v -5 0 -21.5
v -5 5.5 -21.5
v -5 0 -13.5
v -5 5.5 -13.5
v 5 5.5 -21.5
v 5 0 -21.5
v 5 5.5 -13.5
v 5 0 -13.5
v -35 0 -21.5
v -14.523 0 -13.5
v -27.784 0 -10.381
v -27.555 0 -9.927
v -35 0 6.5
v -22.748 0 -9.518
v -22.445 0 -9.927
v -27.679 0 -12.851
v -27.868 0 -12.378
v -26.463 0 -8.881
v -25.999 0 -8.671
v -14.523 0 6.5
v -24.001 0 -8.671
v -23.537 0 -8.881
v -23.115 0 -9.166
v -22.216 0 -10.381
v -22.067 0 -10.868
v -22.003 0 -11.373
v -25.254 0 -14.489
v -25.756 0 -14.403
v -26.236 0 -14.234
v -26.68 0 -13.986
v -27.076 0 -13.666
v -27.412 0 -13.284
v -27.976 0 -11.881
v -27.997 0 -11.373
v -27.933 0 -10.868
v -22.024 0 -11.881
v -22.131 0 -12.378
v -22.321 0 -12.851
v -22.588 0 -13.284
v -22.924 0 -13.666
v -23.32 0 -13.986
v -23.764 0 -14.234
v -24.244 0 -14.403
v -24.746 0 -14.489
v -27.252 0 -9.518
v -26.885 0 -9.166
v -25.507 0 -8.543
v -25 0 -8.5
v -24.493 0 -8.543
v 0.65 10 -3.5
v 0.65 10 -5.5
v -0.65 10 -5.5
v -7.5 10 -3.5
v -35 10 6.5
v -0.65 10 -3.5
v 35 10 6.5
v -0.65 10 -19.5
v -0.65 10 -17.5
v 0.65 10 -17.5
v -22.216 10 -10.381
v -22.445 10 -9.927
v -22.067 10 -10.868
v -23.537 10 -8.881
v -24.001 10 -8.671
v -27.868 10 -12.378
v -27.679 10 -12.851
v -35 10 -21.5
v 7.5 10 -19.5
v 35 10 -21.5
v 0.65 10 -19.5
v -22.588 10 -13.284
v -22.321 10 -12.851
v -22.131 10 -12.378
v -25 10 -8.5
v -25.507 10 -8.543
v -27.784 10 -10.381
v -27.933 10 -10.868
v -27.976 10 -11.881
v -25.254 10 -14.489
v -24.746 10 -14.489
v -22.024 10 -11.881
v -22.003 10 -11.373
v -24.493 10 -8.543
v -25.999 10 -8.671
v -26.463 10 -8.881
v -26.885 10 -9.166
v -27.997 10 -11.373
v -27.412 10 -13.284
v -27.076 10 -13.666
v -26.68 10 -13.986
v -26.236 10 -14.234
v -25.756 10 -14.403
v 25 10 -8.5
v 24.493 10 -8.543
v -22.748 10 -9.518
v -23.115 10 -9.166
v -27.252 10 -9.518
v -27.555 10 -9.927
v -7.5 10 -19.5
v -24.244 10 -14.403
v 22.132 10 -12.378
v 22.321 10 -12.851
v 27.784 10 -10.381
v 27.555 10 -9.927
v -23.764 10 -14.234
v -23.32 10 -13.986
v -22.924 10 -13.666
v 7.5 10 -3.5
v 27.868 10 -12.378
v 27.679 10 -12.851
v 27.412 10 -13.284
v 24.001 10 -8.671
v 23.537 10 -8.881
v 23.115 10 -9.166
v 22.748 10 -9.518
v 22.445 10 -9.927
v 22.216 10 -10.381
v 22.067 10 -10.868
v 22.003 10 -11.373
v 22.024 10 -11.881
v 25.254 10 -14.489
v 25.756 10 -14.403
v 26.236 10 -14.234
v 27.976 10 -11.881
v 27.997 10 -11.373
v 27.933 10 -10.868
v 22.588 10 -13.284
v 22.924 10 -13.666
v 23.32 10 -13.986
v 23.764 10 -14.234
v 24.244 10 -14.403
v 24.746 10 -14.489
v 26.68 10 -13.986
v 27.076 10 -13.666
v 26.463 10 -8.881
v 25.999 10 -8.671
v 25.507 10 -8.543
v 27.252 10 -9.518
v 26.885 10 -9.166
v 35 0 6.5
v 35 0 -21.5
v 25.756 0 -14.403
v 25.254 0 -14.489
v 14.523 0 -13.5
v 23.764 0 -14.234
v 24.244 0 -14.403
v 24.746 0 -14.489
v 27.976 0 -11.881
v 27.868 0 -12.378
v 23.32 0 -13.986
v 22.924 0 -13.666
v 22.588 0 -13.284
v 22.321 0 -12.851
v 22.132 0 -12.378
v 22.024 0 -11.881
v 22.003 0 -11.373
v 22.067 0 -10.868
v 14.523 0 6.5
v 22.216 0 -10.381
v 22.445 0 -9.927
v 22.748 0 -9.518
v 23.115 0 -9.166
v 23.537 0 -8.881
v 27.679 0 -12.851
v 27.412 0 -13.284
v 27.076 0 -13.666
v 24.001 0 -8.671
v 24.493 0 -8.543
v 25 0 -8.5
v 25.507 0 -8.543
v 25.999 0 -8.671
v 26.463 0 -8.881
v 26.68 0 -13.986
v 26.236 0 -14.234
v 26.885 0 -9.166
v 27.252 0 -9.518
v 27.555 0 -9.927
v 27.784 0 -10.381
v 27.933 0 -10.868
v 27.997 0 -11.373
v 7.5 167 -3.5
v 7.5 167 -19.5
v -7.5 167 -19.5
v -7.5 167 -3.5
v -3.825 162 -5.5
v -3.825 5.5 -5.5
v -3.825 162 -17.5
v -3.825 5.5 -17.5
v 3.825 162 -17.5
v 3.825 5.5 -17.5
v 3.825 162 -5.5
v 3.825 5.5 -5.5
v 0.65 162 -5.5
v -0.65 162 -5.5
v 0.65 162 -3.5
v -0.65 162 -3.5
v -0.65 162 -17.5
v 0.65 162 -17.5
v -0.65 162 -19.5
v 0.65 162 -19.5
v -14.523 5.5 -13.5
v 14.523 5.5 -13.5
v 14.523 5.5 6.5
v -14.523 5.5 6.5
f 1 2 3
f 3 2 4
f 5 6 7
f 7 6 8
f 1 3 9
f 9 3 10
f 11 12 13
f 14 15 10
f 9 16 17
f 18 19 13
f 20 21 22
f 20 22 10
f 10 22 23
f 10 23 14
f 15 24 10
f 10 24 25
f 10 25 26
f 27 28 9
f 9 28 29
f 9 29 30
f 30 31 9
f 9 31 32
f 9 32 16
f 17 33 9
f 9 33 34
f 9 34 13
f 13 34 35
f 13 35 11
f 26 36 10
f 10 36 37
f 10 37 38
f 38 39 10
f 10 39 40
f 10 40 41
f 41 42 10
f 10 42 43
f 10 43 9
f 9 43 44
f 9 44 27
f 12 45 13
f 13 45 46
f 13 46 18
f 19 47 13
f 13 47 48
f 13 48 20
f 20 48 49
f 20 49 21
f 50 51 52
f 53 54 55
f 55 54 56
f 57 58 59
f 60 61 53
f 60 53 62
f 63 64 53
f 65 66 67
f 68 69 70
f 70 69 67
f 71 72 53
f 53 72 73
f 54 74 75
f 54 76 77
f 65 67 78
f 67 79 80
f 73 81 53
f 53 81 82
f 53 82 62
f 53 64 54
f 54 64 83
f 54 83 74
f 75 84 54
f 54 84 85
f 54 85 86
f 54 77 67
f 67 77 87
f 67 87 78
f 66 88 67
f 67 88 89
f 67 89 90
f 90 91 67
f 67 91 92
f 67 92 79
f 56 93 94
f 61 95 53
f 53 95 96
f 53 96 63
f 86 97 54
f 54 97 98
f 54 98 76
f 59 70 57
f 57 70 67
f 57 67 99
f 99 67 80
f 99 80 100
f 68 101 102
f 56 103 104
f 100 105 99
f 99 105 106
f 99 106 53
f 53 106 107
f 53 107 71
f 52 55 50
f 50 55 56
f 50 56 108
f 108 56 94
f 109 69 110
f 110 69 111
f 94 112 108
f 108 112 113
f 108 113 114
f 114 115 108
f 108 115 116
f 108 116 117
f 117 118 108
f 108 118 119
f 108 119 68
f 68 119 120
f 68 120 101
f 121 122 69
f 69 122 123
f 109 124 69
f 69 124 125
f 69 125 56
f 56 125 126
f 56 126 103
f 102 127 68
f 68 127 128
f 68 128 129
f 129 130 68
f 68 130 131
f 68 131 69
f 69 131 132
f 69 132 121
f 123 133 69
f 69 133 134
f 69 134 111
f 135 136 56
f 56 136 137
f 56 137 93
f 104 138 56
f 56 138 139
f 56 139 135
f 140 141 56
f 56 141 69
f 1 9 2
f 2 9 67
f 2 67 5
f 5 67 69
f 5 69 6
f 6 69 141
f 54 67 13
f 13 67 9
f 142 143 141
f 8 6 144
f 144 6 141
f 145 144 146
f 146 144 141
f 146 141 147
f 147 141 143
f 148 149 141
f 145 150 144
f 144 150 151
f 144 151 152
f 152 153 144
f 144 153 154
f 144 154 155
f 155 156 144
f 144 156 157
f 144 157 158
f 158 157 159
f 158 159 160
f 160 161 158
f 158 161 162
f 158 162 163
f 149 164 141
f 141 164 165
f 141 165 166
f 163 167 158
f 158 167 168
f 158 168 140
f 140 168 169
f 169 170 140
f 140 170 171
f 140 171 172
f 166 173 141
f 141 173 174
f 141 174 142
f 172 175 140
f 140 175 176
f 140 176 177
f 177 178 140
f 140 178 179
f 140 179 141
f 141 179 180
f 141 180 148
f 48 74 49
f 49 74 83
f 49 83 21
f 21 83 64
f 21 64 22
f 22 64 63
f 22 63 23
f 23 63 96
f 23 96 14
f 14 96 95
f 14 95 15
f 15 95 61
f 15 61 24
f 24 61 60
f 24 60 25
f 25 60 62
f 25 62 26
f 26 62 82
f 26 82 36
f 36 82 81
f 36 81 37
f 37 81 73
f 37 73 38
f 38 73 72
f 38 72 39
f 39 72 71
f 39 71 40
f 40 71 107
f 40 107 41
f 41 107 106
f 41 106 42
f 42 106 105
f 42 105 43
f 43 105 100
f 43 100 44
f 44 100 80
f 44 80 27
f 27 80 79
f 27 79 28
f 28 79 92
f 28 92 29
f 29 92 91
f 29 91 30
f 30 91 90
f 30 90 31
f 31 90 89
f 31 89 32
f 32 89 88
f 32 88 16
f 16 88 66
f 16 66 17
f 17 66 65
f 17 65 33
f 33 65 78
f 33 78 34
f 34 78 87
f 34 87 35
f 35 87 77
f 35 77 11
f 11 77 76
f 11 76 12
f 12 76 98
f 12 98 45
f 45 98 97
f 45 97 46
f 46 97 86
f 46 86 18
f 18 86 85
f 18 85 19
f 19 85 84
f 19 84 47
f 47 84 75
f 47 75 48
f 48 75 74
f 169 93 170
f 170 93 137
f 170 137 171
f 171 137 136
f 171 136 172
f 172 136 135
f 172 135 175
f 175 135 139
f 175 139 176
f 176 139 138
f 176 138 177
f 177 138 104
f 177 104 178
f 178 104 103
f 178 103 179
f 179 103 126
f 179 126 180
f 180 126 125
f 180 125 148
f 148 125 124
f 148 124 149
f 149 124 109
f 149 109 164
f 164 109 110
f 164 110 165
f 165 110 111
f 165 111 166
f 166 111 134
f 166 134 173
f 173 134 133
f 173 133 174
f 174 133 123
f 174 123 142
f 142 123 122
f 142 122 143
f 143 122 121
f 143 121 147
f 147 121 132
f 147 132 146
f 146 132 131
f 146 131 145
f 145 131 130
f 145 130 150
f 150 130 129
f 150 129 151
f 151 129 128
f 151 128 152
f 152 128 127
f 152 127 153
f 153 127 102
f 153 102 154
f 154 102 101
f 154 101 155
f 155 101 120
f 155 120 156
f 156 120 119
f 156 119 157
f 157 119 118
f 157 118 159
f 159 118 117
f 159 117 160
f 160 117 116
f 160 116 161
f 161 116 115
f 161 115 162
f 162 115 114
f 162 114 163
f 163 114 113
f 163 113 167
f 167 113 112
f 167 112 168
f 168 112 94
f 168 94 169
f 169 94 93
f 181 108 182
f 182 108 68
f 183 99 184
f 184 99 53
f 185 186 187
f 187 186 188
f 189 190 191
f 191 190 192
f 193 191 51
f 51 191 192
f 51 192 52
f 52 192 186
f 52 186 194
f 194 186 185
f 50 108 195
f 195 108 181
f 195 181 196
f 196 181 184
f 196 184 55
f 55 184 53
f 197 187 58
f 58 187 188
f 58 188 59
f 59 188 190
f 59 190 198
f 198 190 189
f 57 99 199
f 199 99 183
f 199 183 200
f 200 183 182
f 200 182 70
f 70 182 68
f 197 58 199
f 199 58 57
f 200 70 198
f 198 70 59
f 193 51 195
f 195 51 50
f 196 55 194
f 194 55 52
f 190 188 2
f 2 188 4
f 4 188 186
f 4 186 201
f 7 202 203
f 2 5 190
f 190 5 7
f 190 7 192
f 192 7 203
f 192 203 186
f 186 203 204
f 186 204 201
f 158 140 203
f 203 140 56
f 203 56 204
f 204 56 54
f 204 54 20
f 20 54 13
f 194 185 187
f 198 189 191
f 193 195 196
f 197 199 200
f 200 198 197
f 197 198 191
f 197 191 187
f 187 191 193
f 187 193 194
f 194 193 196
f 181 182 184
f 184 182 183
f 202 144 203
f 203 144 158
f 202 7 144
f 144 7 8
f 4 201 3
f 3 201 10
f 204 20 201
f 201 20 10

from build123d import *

# Parameters (mm, degrees)
SKETCH_1_W           = 70
SKETCH_1_H           = 43
EXTRUDE_1_DEPTH      = 10
SKETCH_21_R          = 3
CUT_EXTRUDE_12_DEPTH = 43.275879648
SKETCH_22_R          = 3
CUT_EXTRUDE_13_DEPTH = 43.275879648
SKETCH_46_W          = 15
SKETCH_46_H          = 12
EXTRUDE_4_DEPTH      = 200
SKETCH_76_W          = 7.65
SKETCH_76_H          = 200
CUT_EXTRUDE_37_DEPTH = 217.439367953
SKETCH_78_W          = 15
SKETCH_78_H          = 2
EXTRUDE_16_DEPTH     = 200
SKETCH_79_W          = 15
SKETCH_79_H          = 2
EXTRUDE_17_DEPTH     = 200
SKETCH_80_W          = 1.3
SKETCH_80_H          = 200
CUT_EXTRUDE_38_DEPTH = 215.359511102
SKETCH_83_W          = 7.65
SKETCH_83_H          = 12
CUT_EXTRUDE_39_DEPTH = 205.174557671
SKETCH_84_W          = 10
SKETCH_84_H          = 11
CUT_EXTRUDE_40_DEPTH = 218.195764231
SKETCH_82_W          = 15
SKETCH_82_H          = 16
EXTRUDE_19_DEPTH     = 10
SKETCH_85_W          = 70
SKETCH_85_H          = 15
CUT_EXTRUDE_41_DEPTH = 10
SKETCH_86_W          = 15
SKETCH_86_H          = 35
CUT_EXTRUDE_42_DEPTH = 25
SKETCH_87_W          = 15
SKETCH_87_H          = 16
EXTRUDE_20_DEPTH     = 5
SKETCH_88_W          = 15
SKETCH_88_H          = 28
CUT_EXTRUDE_43_DEPTH = 35
SKETCH_89_W          = 15
SKETCH_89_H          = 16
EXTRUDE_21_DEPTH     = 5
SKETCH_90_W          = 29.045295042
SKETCH_90_H          = 11
CUT_EXTRUDE_44_DEPTH = 20


with BuildPart() as part:
    # 草圖1 → 填料-伸長1 (new body)
    with BuildSketch(Plane(origin=(0, 0, 0), x_dir=(1, 0, 0), z_dir=(0, 1, 0))):
        Rectangle(SKETCH_1_W, SKETCH_1_H)
    extrude(amount=EXTRUDE_1_DEPTH)

    # 草圖21 → 除料-伸長12 (cut, through all)
    with BuildSketch(Plane(origin=(0, 10, 0), x_dir=(1, 0, 0), z_dir=(0, 1, 0))):
        with Locations(Location((-25, 11.5, 0), (0, 0, 270))):
            Circle(SKETCH_21_R)
    extrude(amount=-CUT_EXTRUDE_12_DEPTH, mode=Mode.SUBTRACT)

    # 草圖22 → 除料-伸長13 (cut, through all)
    with BuildSketch(Plane(origin=(0, 10, 0), x_dir=(1, 0, 0), z_dir=(0, 1, 0))):
        with Locations(Location((25, 11.5, 0), (0, 0, 270))):
            Circle(SKETCH_22_R)
    extrude(amount=-CUT_EXTRUDE_13_DEPTH, mode=Mode.SUBTRACT)

    # 草圖46 → 填料-伸長4 (add)
    with BuildSketch(Plane(origin=(0, 10, 0), x_dir=(1, 0, 0), z_dir=(0, 1, 0))):
        with Locations((0, 11.5)):
            Rectangle(SKETCH_46_W, SKETCH_46_H)
    extrude(amount=EXTRUDE_4_DEPTH)

    # 草圖76 → 除料-伸長37 (cut, through all)
    with BuildSketch(Plane(origin=(0, 0, -17.5), x_dir=(-1, 0, 0), z_dir=(0, 0, -1))):
        with Locations((0, 110)):
            Rectangle(SKETCH_76_W, SKETCH_76_H)
    extrude(amount=-CUT_EXTRUDE_37_DEPTH, mode=Mode.SUBTRACT)

    # 草圖78 → 填料-伸長16 (add)
    with BuildSketch(Plane(origin=(0, 10, 0), x_dir=(1, 0, 0), z_dir=(0, 1, 0))):
        with Locations((0, 4.5)):
            Rectangle(SKETCH_78_W, SKETCH_78_H)
    extrude(amount=EXTRUDE_16_DEPTH)

    # 草圖79 → 填料-伸長17 (add)
    with BuildSketch(Plane(origin=(0, 10, 0), x_dir=(1, 0, 0), z_dir=(0, 1, 0))):
        with Locations((0, 18.5)):
            Rectangle(SKETCH_79_W, SKETCH_79_H)
    extrude(amount=EXTRUDE_17_DEPTH)

    # 草圖80 → 除料-伸長38 (cut, through all)
    with BuildSketch(Plane.XY.offset(-3.5)):
        with Locations((0, 110)):
            Rectangle(SKETCH_80_W, SKETCH_80_H)
    extrude(amount=-CUT_EXTRUDE_38_DEPTH, mode=Mode.SUBTRACT)

    # 草圖83 → 除料-伸長39 (cut, through all)
    with BuildSketch(Plane(origin=(0, 10, 0), x_dir=(1, 0, 0), z_dir=(0, 1, 0))):
        with Locations((0, 11.5)):
            Rectangle(SKETCH_83_W, SKETCH_83_H)
    extrude(amount=-CUT_EXTRUDE_39_DEPTH, mode=Mode.SUBTRACT)

    # 草圖84 → 除料-伸長40 (cut, through all)
    with BuildSketch(Plane(origin=(0, 0, -21.5), x_dir=(-1, 0, 0), z_dir=(0, 0, -1))):
        Rectangle(SKETCH_84_W, SKETCH_84_H)
    extrude(amount=-CUT_EXTRUDE_40_DEPTH, mode=Mode.SUBTRACT)

    # 草圖82 → 填料-伸長19 (add)
    with BuildSketch(Plane(origin=(0, 210, 0), x_dir=(1, 0, 0), z_dir=(0, 1, 0))):
        with Locations((0, 11.5)):
            Rectangle(SKETCH_82_W, SKETCH_82_H)
    extrude(amount=EXTRUDE_19_DEPTH)

    # 草圖85 → 除料-伸長41 (cut)
    with BuildSketch(Plane(origin=(0, 10, 0), x_dir=(1, 0, 0), z_dir=(0, 1, 0))):
        with Locations((0, -14)):
            Rectangle(SKETCH_85_W, SKETCH_85_H)
    extrude(amount=-CUT_EXTRUDE_41_DEPTH, mode=Mode.SUBTRACT)

    # 草圖86 → 除料-伸長42 (cut)
    with BuildSketch(Plane.XY.offset(-3.5)):
        with Locations((0, 202.5)):
            Rectangle(SKETCH_86_W, SKETCH_86_H)
    extrude(amount=-CUT_EXTRUDE_42_DEPTH, mode=Mode.SUBTRACT)

    # 草圖87 → 填料-伸長20 (add)
    with BuildSketch(Plane(origin=(0, 185, 0), x_dir=(1, 0, 0), z_dir=(0, 1, 0))):
        with Locations((0, 11.5)):
            Rectangle(SKETCH_87_W, SKETCH_87_H)
    extrude(amount=EXTRUDE_20_DEPTH)

    # 草圖88 → 除料-伸長43 (cut)
    with BuildSketch(Plane(origin=(0, 0, -19.5), x_dir=(-1, 0, 0), z_dir=(0, 0, -1))):
        with Locations((0, 176)):
            Rectangle(SKETCH_88_W, SKETCH_88_H)
    extrude(amount=-CUT_EXTRUDE_43_DEPTH, mode=Mode.SUBTRACT)

    # 草圖89 → 填料-伸長21 (add)
    with BuildSketch(Plane(origin=(0, 162, 0), x_dir=(1, 0, 0), z_dir=(0, 1, 0))):
        with Locations((0, 11.5)):
            Rectangle(SKETCH_89_W, SKETCH_89_H)
    extrude(amount=EXTRUDE_21_DEPTH)

    # 草圖90 → 除料-伸長44 (cut)
    with BuildSketch(Plane.XY.offset(6.5)):
        Rectangle(SKETCH_90_W, SKETCH_90_H)
    extrude(amount=-CUT_EXTRUDE_44_DEPTH, mode=Mode.SUBTRACT)


solid = part.part
